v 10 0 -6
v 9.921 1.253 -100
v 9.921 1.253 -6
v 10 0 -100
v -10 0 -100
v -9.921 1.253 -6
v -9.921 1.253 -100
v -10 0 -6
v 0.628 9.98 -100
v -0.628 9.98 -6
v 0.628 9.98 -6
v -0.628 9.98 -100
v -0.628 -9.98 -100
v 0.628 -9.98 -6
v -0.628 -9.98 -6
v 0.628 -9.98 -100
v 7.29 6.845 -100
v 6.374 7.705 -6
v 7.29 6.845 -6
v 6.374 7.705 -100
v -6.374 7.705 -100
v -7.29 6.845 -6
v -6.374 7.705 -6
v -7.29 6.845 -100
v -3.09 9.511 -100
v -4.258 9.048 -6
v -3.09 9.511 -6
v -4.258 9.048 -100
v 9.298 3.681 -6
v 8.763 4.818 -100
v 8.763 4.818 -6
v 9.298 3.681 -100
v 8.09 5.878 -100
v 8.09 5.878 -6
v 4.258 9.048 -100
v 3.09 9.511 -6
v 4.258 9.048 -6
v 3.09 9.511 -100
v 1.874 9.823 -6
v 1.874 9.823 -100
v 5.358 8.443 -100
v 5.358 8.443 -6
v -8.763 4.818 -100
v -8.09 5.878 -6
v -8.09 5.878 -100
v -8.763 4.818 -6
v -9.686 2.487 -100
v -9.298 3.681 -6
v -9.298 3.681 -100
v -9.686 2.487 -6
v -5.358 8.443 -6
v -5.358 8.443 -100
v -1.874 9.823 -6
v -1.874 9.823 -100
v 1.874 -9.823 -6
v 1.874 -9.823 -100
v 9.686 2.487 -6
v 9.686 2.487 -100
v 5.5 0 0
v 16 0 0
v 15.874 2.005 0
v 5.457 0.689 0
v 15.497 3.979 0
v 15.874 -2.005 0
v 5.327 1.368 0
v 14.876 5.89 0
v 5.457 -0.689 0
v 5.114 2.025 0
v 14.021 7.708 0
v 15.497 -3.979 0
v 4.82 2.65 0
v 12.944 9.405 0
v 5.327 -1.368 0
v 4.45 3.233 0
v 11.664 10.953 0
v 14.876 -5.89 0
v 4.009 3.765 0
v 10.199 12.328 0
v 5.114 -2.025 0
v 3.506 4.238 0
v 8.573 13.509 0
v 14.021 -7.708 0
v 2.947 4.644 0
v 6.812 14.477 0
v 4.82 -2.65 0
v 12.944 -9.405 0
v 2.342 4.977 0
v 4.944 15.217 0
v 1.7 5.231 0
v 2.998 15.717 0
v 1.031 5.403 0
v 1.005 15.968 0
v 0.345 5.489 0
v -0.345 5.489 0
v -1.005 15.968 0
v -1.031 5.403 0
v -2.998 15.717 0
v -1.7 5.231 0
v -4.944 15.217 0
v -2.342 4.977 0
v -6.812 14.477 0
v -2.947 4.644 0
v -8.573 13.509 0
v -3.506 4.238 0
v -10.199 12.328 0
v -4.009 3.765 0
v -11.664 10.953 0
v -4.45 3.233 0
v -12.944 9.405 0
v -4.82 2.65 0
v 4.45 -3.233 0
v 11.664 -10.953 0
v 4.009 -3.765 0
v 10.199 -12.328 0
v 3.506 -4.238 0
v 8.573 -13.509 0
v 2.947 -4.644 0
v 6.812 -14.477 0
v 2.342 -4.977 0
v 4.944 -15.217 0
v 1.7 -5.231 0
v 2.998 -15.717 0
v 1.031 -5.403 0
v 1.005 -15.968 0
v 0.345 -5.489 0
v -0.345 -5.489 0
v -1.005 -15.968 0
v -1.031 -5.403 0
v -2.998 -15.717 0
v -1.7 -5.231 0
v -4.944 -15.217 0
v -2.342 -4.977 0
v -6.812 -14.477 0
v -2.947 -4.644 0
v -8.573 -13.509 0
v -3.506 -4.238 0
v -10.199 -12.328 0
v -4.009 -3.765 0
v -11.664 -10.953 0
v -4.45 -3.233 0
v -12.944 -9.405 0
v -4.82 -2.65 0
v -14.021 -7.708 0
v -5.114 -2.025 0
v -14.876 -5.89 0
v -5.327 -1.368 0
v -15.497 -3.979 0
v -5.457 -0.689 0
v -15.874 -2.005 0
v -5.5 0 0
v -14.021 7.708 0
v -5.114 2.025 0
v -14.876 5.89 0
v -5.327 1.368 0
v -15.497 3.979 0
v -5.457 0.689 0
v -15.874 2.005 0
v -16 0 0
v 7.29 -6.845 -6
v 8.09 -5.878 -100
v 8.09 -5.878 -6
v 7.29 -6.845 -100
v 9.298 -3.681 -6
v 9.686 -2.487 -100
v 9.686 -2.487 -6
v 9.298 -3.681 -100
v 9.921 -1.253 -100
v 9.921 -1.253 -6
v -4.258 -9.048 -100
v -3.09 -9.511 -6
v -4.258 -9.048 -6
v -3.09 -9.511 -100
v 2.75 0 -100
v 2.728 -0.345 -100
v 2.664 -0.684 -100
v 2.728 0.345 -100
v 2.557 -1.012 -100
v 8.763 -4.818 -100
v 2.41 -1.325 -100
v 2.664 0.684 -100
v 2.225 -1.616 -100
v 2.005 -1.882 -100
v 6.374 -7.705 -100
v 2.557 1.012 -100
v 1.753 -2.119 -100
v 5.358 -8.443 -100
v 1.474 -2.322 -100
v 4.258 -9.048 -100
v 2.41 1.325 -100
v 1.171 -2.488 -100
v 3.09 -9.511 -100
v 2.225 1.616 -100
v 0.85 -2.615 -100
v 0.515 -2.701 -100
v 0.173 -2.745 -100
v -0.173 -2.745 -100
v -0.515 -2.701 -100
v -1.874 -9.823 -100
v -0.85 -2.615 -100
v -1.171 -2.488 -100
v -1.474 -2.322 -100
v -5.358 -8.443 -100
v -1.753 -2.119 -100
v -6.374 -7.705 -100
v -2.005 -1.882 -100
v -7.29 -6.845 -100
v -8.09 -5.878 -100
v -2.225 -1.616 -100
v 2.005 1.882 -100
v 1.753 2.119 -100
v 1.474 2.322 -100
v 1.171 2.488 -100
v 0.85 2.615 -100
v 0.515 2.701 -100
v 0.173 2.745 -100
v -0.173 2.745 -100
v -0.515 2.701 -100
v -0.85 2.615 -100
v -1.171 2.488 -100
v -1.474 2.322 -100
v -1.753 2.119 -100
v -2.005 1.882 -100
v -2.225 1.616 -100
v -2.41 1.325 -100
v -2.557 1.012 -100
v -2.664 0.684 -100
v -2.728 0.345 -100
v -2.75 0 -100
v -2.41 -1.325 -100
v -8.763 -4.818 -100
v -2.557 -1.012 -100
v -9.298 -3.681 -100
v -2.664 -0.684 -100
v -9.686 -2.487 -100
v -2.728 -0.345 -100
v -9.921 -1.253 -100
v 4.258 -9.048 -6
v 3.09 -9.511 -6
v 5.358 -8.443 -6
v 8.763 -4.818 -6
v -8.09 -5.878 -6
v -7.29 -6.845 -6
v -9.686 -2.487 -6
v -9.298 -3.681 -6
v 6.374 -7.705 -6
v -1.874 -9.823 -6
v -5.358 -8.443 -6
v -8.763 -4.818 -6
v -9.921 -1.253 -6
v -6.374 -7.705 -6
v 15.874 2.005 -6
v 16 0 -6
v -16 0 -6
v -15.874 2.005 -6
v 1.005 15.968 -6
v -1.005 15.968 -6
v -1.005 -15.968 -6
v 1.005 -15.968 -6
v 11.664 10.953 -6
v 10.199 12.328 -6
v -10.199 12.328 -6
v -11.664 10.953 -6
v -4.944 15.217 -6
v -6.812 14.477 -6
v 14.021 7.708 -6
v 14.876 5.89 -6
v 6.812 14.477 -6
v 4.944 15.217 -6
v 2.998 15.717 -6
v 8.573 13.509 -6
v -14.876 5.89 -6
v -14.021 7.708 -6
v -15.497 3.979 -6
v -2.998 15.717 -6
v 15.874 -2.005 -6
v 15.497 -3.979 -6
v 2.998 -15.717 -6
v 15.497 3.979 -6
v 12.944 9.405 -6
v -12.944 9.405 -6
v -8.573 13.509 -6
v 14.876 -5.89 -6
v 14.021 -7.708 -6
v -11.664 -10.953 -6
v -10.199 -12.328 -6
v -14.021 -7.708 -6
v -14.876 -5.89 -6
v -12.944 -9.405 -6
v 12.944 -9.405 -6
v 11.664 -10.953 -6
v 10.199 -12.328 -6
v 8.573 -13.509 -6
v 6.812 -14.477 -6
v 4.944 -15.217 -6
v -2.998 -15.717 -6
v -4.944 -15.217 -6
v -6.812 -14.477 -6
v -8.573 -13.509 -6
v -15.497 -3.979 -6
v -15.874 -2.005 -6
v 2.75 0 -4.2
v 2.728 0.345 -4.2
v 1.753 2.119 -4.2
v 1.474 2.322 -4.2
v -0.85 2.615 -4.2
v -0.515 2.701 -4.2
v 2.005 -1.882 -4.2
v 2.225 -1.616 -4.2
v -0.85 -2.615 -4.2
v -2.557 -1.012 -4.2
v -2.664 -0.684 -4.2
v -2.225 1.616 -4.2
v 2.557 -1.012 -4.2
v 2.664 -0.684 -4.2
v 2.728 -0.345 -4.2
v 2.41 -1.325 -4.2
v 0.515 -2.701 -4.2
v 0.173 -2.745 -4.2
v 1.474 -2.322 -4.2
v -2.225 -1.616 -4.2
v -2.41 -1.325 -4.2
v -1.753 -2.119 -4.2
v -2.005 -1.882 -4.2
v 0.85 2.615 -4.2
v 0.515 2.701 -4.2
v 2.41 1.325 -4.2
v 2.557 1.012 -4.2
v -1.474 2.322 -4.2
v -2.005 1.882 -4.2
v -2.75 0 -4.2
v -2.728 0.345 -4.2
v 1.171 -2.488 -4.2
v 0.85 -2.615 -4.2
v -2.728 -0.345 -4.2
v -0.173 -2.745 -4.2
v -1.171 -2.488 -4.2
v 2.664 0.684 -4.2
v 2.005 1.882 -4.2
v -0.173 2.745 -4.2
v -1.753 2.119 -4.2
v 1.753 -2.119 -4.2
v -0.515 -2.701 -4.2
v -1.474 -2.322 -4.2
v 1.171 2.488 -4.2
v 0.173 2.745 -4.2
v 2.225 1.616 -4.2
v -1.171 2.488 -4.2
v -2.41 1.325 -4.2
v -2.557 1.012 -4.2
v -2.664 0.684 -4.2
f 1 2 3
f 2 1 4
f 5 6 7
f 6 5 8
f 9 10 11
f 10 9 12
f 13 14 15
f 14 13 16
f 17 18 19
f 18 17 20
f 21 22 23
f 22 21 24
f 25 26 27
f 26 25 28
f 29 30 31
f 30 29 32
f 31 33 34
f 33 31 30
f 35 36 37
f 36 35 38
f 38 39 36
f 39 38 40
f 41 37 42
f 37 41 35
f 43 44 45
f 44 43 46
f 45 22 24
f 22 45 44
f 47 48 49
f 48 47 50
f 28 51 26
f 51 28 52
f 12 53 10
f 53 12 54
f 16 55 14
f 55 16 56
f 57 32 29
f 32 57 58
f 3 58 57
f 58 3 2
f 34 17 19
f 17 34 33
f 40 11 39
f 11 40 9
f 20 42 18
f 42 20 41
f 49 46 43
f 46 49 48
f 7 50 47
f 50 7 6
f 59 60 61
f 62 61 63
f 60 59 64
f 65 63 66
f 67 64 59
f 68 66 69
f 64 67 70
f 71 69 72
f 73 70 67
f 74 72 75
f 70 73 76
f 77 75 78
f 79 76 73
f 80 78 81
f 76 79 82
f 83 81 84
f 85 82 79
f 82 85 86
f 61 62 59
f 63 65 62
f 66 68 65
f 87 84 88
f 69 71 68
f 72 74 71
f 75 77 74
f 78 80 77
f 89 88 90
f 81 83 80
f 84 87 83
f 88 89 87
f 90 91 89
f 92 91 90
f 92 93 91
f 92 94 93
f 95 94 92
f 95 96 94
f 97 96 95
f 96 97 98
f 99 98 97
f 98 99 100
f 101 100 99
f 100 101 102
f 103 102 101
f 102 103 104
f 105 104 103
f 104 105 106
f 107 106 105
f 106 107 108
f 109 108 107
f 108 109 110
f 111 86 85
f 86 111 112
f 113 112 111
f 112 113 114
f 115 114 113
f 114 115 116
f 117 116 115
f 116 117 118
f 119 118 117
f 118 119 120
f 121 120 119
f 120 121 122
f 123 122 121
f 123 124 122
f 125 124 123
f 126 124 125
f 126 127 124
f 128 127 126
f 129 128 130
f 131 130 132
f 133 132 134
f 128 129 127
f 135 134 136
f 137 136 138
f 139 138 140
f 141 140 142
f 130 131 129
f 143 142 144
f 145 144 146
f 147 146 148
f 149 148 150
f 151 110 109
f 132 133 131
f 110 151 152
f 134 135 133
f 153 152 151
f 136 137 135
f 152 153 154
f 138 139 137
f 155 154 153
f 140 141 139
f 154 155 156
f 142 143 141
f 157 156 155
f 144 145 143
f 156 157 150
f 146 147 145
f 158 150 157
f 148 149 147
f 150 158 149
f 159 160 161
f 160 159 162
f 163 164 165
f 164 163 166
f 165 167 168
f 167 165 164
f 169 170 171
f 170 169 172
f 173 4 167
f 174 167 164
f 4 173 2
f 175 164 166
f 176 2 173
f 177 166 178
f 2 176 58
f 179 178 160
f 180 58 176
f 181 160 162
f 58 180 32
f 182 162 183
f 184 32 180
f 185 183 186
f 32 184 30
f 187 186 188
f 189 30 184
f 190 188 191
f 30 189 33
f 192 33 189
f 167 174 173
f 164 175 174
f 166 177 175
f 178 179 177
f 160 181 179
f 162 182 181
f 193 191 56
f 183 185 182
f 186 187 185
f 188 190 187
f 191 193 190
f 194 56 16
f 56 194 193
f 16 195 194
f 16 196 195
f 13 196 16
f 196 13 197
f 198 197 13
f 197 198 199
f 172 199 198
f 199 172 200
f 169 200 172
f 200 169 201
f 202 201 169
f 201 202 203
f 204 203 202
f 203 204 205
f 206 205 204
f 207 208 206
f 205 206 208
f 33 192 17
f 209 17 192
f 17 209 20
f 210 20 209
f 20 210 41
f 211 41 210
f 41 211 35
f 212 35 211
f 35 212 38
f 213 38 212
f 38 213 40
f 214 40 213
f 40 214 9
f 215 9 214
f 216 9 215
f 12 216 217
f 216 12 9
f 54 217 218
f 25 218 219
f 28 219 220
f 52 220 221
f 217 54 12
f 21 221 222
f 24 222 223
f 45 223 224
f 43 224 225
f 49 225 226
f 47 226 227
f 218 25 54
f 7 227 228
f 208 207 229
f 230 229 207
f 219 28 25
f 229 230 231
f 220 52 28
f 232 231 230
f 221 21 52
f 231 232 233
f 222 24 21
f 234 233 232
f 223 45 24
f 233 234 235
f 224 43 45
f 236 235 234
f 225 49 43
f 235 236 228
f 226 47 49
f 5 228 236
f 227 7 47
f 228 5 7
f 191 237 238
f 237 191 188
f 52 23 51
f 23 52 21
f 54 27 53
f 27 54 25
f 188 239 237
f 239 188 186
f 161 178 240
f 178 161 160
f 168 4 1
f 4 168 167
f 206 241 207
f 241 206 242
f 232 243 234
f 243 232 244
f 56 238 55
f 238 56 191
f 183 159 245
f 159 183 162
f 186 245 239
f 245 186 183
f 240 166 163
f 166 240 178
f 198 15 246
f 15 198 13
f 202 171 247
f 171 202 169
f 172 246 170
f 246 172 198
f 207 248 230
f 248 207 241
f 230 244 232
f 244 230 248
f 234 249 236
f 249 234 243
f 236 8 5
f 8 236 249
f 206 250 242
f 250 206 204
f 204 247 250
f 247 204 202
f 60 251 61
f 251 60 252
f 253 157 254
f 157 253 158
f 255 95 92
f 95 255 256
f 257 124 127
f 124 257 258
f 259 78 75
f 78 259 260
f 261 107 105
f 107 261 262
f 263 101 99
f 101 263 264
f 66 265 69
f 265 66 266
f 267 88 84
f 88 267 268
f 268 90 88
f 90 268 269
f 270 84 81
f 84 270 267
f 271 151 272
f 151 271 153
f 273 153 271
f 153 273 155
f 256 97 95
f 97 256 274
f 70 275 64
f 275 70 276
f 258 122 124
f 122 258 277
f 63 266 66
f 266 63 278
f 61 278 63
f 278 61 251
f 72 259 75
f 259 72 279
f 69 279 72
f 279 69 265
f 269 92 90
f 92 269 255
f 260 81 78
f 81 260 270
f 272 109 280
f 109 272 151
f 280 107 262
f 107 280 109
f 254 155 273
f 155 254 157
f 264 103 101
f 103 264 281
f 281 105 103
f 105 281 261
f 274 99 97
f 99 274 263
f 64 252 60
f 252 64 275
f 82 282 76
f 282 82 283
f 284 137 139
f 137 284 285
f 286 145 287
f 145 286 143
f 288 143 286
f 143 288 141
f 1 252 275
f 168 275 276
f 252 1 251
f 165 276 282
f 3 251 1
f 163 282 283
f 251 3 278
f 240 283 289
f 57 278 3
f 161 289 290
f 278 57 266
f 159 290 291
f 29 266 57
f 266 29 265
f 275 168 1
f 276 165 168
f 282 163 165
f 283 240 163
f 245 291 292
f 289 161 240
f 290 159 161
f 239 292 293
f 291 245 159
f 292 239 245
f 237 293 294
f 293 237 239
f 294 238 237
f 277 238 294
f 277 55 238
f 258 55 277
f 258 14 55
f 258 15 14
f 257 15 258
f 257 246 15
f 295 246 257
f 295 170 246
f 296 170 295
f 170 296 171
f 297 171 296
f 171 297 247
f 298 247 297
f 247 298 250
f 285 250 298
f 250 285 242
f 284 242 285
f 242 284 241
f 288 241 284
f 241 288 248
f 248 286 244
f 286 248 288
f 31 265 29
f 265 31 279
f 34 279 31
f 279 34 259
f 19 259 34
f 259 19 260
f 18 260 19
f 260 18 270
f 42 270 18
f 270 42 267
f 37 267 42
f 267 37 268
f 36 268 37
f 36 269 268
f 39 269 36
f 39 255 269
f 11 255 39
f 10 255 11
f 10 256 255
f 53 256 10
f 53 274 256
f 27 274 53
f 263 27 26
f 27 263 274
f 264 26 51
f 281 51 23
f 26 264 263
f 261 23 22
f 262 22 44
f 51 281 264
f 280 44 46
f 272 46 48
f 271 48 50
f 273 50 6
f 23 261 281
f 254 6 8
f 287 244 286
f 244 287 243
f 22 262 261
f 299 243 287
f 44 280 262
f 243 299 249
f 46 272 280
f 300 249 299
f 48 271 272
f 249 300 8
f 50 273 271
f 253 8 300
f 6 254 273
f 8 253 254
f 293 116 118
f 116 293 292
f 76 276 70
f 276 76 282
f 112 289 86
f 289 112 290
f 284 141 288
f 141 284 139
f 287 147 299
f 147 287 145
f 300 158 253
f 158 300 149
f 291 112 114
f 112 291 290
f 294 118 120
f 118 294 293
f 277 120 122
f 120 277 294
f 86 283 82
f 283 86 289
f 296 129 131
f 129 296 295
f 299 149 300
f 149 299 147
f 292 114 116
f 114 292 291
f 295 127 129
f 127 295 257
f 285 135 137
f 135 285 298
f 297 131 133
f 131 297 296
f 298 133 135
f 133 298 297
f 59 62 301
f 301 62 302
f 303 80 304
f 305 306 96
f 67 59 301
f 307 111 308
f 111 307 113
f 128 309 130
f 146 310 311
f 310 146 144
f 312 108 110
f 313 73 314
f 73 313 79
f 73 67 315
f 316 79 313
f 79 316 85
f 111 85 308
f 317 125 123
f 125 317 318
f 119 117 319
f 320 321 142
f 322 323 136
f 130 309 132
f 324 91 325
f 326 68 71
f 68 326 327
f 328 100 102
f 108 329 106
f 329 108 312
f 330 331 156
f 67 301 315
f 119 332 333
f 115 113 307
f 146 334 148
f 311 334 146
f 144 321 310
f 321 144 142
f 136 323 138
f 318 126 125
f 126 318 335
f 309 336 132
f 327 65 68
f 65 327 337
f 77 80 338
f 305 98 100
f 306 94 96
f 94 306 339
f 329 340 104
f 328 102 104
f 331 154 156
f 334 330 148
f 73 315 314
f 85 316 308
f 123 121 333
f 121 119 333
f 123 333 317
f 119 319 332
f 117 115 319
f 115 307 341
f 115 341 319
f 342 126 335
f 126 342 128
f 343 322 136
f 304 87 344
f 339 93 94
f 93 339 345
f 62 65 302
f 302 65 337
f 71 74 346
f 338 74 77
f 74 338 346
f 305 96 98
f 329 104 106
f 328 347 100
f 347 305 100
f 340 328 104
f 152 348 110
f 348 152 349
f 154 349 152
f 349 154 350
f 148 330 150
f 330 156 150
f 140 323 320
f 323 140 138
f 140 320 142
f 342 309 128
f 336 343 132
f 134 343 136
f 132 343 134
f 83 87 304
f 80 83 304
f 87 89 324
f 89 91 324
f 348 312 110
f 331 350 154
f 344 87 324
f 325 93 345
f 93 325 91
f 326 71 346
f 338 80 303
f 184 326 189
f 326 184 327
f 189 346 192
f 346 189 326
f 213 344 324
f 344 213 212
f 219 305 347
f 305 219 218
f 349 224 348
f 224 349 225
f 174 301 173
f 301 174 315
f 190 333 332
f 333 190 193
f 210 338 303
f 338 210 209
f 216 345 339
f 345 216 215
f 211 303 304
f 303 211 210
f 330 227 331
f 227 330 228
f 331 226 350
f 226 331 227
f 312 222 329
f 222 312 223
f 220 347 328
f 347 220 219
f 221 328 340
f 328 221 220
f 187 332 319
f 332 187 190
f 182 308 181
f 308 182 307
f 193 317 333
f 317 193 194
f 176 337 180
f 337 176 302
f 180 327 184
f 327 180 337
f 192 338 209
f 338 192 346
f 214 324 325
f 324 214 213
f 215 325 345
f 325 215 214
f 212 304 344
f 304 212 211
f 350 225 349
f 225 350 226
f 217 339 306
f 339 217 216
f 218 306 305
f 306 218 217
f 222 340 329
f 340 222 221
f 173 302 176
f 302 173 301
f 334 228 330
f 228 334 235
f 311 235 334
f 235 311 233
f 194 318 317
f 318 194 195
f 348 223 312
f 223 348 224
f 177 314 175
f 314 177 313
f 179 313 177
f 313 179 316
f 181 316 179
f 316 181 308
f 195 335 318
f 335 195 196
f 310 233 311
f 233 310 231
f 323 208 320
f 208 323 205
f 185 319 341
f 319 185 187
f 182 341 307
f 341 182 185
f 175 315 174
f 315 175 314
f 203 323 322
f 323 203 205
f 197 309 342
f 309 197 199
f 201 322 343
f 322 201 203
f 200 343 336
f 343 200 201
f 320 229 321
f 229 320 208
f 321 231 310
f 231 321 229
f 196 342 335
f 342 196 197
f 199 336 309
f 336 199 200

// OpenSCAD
$fn = 50;


difference() {
	union() {
		translate(v = [0, 0, -100.0000000000]) {
			cylinder(h = 100, r = 10.0000000000);
		}
		translate(v = [0, 0, -6.0000000000]) {
			cylinder(h = 6, r = 16.0000000000);
		}
	}
	union() {
		translate(v = [0, 0, 0]) {
			rotate(a = [0, 0, 0]) {
				difference() {
					union() {
						#translate(v = [0, 0, -100.0000000000]) {
							cylinder(h = 100, r = 2.2500000000);
						}
						#translate(v = [0, 0, -4.2000000000]) {
							cylinder(h = 4.2000000000, r = 10.0000000000, r1 = 2.7500000000, r2 = 5.5000000000);
						}
						#translate(v = [0, 0, -100.0000000000]) {
							cylinder(h = 100, r = 2.7500000000);
						}
						#translate(v = [0, 0, -100.0000000000]) {
							cylinder(h = 100, r = 2.2500000000);
						}
					}
					union();
				}
			}
		}
	}
}
